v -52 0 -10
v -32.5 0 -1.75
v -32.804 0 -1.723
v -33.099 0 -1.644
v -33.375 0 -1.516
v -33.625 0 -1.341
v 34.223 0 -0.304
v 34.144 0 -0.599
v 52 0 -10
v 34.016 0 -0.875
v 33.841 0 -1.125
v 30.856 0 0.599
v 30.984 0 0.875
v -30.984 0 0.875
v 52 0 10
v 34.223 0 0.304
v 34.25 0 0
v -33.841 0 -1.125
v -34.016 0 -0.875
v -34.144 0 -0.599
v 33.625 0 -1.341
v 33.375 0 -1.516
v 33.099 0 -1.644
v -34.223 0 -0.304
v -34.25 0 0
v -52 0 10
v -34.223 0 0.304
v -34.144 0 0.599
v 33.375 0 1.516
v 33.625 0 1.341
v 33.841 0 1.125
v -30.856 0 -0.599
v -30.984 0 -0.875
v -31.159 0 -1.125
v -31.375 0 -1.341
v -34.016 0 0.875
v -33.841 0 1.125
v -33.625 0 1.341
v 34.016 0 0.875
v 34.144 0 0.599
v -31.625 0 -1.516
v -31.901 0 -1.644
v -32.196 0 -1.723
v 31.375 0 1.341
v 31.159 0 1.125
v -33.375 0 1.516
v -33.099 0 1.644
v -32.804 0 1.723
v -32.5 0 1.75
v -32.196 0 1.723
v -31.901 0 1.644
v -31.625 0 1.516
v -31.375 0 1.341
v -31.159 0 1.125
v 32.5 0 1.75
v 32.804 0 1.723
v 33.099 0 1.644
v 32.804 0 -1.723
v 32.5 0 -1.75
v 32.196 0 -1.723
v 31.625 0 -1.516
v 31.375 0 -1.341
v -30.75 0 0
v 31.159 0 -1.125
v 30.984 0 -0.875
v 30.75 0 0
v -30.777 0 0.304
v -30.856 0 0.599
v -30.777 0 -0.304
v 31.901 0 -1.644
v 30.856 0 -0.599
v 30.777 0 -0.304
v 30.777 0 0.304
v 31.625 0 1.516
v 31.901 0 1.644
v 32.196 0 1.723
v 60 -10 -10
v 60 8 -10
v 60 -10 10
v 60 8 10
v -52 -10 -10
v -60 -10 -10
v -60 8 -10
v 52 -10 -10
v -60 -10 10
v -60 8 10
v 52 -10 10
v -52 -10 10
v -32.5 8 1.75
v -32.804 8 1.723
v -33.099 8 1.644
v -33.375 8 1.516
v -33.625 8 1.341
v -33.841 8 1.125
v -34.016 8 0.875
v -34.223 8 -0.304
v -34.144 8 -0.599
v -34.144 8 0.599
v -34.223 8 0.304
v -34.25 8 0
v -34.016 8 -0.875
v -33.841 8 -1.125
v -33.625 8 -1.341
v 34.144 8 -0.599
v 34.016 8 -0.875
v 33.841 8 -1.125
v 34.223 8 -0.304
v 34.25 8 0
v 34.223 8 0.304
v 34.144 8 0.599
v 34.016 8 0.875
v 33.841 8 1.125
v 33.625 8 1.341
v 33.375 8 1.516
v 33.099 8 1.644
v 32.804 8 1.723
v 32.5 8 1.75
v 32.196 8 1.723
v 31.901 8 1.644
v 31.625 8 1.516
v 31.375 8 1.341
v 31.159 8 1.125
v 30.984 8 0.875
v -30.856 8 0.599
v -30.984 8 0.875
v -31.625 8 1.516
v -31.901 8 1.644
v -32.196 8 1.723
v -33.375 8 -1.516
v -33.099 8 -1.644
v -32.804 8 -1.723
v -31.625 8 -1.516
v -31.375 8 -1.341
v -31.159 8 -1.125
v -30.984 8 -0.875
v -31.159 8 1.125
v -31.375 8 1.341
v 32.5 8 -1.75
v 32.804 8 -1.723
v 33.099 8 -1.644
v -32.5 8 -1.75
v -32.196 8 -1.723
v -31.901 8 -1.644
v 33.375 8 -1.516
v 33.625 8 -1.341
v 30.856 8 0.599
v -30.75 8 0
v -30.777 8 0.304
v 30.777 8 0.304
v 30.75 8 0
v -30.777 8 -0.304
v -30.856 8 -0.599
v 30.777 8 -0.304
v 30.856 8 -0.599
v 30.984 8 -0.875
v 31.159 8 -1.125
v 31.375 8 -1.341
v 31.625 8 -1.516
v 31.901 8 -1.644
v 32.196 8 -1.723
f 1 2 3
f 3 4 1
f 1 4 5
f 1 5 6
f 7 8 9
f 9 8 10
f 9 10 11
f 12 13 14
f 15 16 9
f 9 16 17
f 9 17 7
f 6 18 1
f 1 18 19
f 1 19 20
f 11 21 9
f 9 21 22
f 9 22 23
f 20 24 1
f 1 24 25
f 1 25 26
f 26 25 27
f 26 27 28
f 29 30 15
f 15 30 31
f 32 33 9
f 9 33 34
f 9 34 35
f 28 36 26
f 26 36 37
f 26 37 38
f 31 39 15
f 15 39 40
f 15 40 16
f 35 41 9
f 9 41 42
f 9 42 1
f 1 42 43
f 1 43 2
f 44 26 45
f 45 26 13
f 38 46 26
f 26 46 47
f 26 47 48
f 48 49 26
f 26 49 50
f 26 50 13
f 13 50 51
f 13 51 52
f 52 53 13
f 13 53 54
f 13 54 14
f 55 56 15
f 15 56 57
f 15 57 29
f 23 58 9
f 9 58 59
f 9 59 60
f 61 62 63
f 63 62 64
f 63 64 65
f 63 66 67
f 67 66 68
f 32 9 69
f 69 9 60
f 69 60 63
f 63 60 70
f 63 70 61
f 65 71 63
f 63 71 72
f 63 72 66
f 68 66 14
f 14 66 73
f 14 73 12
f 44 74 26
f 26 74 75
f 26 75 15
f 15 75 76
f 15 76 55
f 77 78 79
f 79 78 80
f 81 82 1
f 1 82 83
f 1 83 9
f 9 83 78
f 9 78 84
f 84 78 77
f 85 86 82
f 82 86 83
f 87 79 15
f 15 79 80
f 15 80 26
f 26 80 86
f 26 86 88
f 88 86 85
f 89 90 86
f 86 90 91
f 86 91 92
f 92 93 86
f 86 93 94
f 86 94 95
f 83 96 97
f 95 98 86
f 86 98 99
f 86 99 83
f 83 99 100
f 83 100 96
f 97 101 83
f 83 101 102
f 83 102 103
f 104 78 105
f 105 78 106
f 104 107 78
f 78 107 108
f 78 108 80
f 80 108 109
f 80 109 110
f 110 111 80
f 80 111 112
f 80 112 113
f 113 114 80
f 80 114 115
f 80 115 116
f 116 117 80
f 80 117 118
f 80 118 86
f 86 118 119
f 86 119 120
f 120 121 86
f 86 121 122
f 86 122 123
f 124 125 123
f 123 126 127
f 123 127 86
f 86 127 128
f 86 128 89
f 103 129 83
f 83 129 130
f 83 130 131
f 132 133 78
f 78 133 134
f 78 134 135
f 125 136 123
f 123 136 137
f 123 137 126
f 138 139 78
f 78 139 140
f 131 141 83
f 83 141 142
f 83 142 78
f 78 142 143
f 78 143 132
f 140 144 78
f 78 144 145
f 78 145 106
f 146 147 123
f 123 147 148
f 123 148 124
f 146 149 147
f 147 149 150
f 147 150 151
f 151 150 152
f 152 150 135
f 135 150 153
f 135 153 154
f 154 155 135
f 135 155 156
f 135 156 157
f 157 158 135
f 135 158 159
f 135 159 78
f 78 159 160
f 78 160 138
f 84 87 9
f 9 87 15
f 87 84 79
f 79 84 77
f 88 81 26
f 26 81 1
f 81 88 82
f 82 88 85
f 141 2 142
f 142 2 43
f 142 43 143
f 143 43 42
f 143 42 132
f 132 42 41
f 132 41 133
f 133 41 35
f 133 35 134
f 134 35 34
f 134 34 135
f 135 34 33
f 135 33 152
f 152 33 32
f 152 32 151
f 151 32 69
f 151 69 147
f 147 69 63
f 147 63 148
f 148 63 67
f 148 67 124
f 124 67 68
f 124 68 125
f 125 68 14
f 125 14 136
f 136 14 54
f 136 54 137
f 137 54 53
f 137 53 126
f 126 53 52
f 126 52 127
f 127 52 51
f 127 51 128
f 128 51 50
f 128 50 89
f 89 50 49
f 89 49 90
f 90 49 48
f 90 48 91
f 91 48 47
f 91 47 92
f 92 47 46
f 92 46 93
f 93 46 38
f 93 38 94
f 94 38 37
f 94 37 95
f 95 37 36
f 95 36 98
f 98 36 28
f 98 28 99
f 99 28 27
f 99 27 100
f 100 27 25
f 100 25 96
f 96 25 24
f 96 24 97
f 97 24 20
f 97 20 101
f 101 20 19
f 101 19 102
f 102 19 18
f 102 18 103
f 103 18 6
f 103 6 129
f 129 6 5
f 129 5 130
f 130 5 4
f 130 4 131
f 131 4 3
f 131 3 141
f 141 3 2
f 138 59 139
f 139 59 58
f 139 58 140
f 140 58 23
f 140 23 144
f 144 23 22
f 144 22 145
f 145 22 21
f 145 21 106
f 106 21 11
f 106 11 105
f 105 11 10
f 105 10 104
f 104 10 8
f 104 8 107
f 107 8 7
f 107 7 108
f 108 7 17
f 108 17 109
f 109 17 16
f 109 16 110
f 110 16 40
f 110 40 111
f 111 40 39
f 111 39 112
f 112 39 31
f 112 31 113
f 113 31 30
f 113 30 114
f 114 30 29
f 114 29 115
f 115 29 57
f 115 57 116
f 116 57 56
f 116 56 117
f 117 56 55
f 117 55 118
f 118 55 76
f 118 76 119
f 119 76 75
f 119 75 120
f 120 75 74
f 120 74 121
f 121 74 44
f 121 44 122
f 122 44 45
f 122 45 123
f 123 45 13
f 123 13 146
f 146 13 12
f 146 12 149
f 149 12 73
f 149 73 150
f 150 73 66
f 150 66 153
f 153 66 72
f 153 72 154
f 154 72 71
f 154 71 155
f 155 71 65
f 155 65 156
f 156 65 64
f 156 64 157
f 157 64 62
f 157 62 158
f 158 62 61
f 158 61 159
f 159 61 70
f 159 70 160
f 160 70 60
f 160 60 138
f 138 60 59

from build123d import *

# Parameters (mm, degrees)
SKETCH1_W           = 120
SKETCH1_H           = 20
BOSS_EXTRUDE1_DEPTH = 8
SKETCH2_W           = 8
SKETCH2_H           = 20
BOSS_EXTRUDE2_DEPTH = 10
SKETCH3_R           = 1.75
CUT_EXTRUDE1_DEPTH  = 10


with BuildPart() as part:
    # Sketch1 → Boss-Extrude1 (new body)
    with BuildSketch(Plane(origin=(0, 0, 0), x_dir=(1, 0, 0), z_dir=(0, 1, 0))):
        Rectangle(SKETCH1_W, SKETCH1_H)
    extrude(amount=BOSS_EXTRUDE1_DEPTH)

    # Sketch2 → Boss-Extrude2 (add)
    with BuildSketch(Plane.XZ):
        with Locations((56, 0)):
            Rectangle(SKETCH2_W, SKETCH2_H)
        with Locations((-56, 0)):
            Rectangle(SKETCH2_W, SKETCH2_H)
    extrude(amount=BOSS_EXTRUDE2_DEPTH)

    # Sketch3 → Cut-Extrude1 (cut)
    with BuildSketch(Plane.XZ):
        with Locations((32.5, 0)):
            Circle(SKETCH3_R)
        with Locations((-32.5, 0)):
            Circle(SKETCH3_R)
    extrude(amount=-CUT_EXTRUDE1_DEPTH, mode=Mode.SUBTRACT)


solid = part.part
